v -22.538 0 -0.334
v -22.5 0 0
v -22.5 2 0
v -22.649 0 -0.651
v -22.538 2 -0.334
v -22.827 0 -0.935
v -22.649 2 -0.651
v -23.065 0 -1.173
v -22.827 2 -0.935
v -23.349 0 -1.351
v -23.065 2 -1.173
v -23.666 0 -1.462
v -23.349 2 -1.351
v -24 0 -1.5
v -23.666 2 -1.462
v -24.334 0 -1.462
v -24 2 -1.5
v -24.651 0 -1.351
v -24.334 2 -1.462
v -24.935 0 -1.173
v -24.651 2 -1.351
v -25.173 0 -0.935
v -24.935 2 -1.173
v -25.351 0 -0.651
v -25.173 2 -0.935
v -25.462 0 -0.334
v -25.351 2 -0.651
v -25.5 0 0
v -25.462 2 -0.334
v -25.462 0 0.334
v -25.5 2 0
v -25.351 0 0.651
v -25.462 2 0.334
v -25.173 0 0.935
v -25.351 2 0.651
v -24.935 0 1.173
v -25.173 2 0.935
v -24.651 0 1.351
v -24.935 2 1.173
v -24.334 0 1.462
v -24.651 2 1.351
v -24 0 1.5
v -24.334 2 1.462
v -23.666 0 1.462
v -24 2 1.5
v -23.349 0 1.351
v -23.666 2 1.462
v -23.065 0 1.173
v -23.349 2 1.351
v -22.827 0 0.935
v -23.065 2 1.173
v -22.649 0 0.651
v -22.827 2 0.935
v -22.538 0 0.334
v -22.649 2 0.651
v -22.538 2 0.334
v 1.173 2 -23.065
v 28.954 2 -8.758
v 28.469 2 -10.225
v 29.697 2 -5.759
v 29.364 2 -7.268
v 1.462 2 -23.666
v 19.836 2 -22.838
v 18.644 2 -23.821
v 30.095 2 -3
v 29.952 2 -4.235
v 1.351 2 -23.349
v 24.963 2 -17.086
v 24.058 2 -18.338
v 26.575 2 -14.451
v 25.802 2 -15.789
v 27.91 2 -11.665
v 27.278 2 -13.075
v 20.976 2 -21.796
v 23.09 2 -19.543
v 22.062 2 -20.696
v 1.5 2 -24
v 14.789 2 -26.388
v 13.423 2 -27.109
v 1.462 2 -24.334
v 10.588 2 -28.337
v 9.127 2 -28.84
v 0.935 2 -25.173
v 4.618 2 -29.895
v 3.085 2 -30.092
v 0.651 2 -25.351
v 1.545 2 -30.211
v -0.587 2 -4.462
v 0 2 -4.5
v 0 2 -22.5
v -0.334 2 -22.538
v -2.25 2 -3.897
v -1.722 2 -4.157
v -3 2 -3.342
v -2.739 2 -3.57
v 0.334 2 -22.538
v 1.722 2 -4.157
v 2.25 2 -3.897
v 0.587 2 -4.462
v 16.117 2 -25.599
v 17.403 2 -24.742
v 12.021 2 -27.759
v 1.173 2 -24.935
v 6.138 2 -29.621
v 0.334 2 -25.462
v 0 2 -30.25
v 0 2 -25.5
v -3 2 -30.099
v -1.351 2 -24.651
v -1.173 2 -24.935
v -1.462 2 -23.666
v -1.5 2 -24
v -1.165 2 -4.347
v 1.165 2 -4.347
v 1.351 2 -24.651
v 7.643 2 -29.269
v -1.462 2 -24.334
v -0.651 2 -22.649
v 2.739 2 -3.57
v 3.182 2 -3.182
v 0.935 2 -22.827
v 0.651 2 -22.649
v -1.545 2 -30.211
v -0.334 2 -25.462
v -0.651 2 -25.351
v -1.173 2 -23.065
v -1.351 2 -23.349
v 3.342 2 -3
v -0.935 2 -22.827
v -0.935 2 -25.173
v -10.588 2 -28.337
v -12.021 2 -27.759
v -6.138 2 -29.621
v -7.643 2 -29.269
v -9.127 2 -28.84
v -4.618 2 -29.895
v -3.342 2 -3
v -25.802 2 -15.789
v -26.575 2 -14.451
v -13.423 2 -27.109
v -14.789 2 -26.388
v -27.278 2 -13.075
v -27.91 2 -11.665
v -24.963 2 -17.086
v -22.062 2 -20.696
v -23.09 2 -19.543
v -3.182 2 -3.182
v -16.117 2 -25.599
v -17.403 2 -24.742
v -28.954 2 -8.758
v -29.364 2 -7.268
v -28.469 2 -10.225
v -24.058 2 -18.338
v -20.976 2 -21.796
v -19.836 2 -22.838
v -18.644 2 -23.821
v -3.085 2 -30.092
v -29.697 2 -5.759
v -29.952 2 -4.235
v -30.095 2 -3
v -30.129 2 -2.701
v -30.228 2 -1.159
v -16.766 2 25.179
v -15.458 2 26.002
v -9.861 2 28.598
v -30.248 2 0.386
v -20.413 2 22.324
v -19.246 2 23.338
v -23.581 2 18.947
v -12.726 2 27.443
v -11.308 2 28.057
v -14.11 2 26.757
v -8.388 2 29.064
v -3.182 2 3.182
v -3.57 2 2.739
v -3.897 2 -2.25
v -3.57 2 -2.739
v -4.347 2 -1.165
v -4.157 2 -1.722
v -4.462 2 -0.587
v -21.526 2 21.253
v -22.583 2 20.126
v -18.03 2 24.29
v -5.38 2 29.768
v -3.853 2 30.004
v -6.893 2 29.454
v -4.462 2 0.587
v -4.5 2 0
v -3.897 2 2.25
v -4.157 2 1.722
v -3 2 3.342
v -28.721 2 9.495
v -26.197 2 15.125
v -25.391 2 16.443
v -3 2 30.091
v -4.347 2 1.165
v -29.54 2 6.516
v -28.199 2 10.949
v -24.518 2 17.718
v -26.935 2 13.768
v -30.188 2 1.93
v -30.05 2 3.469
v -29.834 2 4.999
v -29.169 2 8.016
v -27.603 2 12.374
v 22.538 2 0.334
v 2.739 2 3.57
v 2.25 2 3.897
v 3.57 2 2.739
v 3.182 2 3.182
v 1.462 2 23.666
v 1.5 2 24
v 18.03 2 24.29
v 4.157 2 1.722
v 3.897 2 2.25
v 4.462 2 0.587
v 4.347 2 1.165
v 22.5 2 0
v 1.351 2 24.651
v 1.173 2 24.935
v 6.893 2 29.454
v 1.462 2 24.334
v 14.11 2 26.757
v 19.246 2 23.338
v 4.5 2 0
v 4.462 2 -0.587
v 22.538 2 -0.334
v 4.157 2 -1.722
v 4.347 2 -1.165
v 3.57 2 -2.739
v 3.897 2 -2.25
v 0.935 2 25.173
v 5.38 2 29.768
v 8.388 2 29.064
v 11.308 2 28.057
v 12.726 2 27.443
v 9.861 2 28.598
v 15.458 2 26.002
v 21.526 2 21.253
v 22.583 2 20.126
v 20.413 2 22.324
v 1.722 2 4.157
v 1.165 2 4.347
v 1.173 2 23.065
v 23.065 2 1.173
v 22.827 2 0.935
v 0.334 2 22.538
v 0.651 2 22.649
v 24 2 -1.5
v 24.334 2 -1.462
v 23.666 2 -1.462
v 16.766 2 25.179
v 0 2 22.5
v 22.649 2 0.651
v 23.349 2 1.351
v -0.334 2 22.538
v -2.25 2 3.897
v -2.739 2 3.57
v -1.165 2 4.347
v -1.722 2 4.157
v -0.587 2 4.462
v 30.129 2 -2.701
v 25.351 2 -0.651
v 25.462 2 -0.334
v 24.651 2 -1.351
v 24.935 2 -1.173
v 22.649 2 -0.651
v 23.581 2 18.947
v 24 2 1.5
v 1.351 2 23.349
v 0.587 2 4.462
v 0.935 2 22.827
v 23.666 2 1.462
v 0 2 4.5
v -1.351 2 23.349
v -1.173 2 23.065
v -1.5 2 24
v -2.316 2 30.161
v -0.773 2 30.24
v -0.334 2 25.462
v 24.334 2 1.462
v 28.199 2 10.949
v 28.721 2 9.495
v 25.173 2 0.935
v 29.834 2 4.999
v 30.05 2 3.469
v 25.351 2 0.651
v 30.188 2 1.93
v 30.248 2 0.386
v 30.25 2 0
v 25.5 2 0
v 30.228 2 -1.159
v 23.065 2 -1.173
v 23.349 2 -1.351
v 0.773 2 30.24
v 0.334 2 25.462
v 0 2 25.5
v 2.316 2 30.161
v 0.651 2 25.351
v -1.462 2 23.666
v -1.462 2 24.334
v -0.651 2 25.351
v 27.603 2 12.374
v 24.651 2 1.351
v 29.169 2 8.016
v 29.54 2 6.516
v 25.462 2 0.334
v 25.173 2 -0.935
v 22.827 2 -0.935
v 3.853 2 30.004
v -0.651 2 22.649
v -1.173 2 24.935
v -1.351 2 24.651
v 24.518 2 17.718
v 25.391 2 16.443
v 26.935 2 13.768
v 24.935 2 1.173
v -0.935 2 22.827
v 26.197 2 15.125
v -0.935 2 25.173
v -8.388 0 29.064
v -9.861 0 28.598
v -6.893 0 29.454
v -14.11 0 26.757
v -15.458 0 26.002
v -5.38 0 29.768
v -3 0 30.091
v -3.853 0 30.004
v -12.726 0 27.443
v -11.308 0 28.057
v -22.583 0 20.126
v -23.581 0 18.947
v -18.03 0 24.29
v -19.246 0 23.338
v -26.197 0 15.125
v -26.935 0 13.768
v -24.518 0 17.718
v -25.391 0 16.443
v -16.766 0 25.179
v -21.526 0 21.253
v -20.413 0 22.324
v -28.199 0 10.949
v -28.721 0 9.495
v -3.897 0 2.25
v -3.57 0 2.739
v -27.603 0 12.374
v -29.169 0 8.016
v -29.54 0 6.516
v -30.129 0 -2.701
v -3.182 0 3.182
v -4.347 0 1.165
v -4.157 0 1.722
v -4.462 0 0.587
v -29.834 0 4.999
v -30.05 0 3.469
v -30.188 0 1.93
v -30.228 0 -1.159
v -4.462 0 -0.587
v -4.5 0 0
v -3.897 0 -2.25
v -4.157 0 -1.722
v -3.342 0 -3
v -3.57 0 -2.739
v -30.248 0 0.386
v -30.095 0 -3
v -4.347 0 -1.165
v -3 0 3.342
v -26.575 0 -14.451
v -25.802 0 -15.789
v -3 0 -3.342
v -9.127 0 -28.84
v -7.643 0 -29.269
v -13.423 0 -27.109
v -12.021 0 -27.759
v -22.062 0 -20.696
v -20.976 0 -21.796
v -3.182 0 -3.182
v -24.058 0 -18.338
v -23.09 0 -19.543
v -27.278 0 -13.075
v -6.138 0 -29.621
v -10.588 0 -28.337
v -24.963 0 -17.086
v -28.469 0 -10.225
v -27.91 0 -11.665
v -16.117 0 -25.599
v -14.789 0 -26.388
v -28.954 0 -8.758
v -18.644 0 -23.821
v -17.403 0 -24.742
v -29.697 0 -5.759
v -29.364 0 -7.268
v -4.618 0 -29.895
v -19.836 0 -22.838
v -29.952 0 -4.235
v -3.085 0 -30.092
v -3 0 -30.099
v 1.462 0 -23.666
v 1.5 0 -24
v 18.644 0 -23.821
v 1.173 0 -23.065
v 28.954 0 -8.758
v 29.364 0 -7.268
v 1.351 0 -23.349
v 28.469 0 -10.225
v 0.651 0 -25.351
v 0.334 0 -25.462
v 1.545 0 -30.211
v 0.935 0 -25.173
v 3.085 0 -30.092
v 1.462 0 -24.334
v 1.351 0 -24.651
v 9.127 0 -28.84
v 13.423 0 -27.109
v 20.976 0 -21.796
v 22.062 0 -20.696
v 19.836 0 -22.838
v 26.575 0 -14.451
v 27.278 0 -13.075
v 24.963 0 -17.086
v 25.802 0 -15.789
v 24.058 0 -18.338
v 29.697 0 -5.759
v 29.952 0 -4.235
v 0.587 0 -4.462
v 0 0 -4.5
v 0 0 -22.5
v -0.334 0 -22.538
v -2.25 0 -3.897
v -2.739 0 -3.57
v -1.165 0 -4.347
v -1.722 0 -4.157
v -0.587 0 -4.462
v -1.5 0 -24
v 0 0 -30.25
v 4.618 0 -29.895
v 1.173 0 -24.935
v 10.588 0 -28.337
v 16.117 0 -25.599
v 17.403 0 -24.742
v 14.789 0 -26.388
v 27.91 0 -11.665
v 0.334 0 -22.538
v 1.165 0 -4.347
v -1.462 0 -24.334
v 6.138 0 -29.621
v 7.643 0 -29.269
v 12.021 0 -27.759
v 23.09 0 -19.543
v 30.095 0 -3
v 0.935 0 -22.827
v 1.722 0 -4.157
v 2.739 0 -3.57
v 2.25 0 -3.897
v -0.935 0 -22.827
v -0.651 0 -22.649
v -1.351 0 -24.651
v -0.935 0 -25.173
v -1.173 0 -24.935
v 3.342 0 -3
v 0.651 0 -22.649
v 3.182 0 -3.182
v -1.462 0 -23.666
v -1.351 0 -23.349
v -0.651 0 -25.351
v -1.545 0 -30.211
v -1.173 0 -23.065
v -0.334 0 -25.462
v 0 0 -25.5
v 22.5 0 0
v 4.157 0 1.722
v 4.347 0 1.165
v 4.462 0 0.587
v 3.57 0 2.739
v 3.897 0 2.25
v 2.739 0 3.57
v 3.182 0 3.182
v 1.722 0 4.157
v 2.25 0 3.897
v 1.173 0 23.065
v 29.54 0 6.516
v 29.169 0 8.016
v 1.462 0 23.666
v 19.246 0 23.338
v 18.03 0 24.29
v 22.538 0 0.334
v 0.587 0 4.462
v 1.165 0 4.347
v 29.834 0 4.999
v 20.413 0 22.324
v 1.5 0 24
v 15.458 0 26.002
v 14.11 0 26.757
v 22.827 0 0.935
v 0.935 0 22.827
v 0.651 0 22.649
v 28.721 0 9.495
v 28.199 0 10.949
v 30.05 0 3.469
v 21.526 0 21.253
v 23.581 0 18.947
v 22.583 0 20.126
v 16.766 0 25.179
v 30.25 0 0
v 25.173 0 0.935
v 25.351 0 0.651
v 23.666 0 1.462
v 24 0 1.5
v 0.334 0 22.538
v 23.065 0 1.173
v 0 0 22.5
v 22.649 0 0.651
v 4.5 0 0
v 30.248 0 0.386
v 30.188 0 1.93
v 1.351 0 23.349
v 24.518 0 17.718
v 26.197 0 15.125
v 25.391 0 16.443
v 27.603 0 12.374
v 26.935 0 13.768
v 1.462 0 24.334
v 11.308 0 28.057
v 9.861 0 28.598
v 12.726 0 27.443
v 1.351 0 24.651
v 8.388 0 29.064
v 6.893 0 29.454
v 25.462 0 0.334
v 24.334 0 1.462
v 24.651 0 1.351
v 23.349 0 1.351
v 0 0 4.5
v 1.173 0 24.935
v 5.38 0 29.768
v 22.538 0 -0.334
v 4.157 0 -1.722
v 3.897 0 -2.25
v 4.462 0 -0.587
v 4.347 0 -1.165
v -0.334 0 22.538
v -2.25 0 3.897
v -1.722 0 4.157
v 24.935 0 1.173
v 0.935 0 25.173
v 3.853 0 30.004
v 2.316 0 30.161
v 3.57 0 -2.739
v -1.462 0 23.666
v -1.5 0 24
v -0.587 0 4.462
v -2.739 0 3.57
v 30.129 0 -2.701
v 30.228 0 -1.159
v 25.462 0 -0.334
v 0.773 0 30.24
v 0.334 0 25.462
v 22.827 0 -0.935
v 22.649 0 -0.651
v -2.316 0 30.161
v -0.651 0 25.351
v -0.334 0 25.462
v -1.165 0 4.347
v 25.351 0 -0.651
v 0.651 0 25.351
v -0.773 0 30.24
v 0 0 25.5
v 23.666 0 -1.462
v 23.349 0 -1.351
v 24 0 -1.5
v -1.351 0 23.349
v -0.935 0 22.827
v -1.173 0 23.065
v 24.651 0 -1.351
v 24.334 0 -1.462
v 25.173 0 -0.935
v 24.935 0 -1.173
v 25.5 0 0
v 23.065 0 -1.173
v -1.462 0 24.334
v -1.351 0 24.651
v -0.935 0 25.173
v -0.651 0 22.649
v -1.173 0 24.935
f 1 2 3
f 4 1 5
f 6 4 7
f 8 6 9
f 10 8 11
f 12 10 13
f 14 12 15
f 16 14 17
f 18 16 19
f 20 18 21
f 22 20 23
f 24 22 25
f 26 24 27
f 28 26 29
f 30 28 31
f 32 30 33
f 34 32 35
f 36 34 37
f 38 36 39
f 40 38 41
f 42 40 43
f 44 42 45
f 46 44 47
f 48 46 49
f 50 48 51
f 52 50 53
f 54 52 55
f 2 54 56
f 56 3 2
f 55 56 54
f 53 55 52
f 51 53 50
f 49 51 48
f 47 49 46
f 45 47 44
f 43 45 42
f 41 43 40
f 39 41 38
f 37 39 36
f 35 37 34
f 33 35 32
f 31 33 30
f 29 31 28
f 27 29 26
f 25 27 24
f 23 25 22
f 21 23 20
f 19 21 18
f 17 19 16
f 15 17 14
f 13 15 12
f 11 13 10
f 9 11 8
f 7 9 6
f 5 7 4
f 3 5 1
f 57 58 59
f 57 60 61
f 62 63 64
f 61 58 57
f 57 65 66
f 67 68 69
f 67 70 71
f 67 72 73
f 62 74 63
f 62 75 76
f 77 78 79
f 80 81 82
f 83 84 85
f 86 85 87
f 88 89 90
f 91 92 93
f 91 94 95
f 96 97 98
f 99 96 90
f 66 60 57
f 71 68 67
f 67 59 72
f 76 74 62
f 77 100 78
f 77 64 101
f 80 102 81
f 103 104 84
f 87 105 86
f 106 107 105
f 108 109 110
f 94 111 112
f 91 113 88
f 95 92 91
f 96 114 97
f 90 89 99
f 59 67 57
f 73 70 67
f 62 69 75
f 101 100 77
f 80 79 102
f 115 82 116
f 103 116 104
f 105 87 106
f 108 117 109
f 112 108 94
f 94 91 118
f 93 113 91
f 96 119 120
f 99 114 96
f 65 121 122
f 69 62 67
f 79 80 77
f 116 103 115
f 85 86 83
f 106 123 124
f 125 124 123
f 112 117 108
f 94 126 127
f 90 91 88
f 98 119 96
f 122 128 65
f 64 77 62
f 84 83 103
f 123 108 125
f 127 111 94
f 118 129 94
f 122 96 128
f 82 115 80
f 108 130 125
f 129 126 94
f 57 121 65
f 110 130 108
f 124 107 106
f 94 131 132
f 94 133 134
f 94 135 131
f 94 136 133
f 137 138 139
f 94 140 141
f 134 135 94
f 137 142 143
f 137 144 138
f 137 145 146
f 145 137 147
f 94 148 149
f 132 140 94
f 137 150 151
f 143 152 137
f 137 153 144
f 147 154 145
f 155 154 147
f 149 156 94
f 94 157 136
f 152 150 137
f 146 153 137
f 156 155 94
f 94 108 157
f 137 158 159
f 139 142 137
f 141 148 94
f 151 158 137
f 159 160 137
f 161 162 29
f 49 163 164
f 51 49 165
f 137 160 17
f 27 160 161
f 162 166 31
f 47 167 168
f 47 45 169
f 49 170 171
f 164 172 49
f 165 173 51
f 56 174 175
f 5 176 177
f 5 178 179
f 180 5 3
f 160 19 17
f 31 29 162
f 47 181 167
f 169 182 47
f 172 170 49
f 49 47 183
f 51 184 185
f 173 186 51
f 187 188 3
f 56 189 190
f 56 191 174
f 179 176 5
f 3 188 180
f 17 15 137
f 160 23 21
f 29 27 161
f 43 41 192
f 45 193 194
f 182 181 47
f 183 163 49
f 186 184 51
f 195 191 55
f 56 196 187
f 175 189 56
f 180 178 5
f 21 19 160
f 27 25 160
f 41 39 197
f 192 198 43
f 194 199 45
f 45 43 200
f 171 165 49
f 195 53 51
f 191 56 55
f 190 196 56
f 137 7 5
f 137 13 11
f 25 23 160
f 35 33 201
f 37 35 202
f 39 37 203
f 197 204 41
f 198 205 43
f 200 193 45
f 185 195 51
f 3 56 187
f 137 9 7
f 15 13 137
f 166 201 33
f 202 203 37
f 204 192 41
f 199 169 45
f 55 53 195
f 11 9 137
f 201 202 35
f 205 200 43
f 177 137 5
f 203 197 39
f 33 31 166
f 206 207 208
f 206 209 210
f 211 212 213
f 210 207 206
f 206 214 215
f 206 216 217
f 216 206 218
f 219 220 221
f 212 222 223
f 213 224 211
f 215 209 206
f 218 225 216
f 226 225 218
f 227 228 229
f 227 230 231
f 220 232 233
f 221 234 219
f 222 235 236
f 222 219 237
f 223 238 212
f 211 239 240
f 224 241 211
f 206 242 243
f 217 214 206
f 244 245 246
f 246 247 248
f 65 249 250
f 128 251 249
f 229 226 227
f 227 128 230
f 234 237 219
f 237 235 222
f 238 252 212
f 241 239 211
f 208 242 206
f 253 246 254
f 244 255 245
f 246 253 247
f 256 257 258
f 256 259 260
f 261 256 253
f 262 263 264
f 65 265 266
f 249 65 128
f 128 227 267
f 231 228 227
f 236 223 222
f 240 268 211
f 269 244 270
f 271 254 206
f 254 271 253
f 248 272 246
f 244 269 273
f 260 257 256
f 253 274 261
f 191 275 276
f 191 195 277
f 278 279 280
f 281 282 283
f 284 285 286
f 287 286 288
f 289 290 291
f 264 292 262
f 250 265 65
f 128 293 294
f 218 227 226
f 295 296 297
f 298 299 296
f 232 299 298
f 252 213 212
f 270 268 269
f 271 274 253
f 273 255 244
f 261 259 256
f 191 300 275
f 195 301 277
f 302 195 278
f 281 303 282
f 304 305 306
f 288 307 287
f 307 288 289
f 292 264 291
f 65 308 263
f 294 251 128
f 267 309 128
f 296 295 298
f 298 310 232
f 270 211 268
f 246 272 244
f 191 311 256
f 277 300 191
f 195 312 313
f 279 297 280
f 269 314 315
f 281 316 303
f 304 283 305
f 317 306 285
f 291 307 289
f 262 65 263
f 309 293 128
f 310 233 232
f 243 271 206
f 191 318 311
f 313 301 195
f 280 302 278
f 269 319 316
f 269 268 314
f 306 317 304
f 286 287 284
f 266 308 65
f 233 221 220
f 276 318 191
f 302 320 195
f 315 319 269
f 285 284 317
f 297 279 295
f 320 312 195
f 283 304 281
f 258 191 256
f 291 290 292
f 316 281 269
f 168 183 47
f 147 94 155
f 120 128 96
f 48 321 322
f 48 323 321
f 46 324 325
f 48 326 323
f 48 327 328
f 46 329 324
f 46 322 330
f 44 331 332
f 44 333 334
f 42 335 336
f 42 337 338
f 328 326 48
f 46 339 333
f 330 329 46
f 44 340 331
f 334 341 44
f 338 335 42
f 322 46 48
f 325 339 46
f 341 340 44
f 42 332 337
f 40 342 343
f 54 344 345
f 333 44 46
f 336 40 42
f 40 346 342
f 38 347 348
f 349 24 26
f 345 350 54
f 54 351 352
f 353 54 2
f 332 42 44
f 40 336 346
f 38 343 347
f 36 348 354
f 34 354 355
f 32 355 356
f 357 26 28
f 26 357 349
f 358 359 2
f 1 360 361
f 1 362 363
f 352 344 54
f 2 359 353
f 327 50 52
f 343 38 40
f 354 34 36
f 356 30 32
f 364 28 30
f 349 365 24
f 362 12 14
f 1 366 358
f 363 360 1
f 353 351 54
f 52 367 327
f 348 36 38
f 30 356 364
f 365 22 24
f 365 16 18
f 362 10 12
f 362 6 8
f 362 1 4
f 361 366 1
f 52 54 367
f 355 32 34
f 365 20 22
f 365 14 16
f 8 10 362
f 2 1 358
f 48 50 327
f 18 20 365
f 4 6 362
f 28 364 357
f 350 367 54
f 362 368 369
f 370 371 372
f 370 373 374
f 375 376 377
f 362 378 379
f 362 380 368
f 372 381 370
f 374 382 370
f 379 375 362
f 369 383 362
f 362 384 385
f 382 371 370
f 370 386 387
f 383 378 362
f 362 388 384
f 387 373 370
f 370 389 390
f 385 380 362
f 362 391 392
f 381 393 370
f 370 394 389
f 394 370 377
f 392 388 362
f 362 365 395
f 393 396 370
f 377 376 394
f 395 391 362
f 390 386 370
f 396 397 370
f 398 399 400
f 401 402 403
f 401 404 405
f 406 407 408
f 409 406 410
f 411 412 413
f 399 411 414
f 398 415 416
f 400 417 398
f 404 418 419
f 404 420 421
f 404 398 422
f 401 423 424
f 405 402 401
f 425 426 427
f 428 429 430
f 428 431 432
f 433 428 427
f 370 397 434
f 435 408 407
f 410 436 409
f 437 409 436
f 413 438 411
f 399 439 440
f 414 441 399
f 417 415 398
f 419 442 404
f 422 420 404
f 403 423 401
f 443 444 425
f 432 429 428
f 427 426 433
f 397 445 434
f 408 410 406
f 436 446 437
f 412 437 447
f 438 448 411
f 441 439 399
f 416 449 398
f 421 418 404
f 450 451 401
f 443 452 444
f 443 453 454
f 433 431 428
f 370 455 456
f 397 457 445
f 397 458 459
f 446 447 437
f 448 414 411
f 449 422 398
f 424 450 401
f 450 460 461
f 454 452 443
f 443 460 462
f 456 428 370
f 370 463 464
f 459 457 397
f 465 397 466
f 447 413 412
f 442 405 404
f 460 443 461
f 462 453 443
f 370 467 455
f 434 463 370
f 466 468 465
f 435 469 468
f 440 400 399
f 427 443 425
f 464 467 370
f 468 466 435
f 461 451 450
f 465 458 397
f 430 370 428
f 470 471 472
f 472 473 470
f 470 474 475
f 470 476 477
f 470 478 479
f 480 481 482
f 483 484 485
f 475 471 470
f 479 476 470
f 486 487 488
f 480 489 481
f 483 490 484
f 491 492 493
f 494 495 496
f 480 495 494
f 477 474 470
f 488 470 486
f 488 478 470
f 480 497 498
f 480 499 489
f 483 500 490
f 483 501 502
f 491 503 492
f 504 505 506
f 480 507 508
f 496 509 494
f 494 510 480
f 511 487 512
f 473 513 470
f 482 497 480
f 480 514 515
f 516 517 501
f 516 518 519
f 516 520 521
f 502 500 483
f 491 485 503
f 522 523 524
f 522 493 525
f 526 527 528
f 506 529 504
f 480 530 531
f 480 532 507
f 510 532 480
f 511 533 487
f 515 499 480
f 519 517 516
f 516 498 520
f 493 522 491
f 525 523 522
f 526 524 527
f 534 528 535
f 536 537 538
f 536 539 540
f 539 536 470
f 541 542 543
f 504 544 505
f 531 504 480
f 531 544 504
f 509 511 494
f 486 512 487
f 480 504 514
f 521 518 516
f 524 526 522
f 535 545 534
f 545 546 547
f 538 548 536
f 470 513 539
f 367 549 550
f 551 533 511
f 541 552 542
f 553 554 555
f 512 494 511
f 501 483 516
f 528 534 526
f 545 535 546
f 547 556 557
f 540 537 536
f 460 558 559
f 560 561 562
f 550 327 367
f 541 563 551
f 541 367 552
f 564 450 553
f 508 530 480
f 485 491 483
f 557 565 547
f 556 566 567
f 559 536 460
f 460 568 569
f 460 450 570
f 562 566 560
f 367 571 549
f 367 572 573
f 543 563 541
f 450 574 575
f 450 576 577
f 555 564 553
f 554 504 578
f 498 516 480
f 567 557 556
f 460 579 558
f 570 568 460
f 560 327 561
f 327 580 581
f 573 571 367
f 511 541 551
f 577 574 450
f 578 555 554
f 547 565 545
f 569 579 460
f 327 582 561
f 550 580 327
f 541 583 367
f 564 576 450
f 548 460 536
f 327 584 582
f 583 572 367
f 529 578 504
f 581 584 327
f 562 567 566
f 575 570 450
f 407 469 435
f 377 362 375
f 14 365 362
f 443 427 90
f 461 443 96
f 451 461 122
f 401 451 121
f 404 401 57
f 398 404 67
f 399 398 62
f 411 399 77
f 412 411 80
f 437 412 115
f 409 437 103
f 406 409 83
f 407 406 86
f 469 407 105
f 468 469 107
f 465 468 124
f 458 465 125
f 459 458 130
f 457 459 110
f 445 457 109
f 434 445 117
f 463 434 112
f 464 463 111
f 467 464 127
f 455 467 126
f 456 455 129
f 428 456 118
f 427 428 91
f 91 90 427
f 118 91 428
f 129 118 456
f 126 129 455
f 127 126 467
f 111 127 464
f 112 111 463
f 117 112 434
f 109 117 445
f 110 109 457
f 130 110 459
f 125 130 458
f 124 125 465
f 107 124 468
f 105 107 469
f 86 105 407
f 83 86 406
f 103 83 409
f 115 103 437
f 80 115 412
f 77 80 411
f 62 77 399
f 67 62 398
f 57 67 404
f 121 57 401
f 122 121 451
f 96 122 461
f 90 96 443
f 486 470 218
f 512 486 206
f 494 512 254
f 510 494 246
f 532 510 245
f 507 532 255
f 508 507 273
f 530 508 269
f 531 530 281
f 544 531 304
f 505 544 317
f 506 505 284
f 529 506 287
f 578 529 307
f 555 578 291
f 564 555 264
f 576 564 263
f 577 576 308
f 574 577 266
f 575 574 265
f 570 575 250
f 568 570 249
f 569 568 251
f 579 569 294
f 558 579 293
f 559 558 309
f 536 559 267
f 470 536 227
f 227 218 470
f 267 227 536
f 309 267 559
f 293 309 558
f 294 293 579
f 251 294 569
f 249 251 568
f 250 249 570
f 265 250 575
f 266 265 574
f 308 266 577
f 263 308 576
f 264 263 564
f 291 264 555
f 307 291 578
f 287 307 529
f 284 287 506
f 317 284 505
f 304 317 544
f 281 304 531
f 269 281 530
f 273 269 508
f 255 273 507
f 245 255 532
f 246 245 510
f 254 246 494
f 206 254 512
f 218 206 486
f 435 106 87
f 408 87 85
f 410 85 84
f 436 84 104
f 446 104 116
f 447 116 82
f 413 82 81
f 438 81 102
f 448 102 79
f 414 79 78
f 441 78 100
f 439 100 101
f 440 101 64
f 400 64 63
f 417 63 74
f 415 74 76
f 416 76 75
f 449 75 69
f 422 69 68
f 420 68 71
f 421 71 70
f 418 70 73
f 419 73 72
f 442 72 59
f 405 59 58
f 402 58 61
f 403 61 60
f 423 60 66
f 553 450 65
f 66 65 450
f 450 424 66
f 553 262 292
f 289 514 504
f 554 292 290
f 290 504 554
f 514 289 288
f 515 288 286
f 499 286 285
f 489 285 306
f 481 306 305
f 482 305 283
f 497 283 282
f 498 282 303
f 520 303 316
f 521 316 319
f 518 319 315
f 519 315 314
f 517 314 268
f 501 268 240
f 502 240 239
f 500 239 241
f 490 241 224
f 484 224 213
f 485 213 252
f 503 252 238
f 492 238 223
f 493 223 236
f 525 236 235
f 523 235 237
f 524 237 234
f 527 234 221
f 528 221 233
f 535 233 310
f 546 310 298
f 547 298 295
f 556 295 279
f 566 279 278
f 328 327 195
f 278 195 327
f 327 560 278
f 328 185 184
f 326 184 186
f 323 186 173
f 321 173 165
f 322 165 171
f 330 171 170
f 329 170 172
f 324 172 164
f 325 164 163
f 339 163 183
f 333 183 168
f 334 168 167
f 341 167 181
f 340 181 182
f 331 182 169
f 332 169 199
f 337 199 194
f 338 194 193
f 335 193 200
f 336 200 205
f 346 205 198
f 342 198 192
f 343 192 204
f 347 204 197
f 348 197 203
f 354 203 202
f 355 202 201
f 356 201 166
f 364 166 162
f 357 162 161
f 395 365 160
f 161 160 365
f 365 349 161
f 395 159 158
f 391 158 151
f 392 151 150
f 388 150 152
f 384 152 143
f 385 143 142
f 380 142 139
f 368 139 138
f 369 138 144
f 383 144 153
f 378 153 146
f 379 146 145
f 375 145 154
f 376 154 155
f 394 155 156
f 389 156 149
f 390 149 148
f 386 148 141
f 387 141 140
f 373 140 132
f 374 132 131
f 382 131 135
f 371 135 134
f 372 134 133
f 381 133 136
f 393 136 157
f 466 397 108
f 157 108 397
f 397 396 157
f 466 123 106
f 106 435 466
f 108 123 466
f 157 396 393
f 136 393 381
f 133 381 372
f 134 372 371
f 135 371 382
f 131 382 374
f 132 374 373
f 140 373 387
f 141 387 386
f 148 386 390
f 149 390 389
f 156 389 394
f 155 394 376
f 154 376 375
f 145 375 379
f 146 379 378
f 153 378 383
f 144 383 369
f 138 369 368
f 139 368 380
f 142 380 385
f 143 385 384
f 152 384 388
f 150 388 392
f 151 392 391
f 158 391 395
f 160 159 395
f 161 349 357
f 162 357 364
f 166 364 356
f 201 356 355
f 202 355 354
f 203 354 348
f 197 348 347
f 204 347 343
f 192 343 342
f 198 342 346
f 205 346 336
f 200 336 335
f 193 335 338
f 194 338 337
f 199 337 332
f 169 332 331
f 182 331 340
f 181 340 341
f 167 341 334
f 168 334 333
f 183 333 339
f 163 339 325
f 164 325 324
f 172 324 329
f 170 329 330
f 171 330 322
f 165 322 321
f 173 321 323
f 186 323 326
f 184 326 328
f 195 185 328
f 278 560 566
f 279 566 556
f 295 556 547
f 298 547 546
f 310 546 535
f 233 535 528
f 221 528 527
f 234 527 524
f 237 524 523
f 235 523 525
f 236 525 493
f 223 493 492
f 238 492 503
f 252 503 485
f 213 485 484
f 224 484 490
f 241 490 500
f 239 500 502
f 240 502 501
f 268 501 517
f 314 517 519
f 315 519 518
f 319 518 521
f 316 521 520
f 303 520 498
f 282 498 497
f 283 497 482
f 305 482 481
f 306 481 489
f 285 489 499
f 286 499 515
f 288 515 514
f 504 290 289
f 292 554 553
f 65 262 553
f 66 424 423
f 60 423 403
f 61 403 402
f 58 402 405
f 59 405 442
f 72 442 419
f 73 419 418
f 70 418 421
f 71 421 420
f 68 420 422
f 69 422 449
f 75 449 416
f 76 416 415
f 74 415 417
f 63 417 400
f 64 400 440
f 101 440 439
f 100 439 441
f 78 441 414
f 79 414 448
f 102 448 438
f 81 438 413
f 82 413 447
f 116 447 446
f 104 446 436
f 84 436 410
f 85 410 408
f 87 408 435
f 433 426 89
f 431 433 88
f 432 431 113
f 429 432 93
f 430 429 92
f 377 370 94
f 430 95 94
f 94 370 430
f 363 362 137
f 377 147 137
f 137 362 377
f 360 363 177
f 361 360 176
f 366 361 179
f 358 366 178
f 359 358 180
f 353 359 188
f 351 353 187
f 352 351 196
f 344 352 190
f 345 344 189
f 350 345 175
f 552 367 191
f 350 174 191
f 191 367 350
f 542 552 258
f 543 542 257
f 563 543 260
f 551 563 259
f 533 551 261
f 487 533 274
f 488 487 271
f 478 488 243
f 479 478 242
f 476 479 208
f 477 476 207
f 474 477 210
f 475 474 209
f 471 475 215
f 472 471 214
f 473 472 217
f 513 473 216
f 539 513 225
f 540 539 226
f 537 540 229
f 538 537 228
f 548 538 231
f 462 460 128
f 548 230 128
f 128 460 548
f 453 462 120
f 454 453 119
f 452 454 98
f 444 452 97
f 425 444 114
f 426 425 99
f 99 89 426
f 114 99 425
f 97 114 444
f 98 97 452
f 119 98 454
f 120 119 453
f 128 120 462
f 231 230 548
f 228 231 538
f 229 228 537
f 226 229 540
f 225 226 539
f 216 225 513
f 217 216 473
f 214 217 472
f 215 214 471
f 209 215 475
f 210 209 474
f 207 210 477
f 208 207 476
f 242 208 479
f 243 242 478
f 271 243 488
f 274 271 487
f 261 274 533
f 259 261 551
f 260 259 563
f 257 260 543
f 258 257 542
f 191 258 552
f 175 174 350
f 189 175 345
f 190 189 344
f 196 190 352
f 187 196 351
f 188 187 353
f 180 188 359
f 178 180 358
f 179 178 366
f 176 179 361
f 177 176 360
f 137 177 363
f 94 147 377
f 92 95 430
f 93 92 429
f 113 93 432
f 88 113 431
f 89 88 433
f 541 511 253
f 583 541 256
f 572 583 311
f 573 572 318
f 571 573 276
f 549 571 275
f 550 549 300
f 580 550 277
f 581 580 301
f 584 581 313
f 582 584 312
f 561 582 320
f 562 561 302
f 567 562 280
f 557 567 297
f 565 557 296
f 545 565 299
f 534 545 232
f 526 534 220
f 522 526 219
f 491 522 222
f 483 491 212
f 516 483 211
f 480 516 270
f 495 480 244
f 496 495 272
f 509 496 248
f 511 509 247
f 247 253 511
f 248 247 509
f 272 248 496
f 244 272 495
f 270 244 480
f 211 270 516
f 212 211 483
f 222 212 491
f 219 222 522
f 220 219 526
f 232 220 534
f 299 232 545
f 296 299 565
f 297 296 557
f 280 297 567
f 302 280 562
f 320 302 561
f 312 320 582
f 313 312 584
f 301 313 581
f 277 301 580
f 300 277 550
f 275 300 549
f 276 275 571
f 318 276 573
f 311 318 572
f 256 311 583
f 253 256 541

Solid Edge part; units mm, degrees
sketch "Sketch1" plane through (0, 0, 0) normal (0, -1, 0) x (1, 0, 0)
  circle A0 centre (0, 0) radius 30.25
extrude "Protrusion1" add sketch "Sketch1" against normal blind 2
sketch "Sketch2" plane through (0, 0, 0) normal (0, -1, 0) x (1, 0, 0)
  circle A0 centre (0, 0) radius 4.5
extrude "Cutout1" cut sketch "Sketch2" against normal through all
sketch "Sketch3" plane through (0, 0, 0) normal (0, -1, 0) x (1, 0, 0)
  circle A0 centre (0, 24) radius 1.5
extrude "Cutout2" cut sketch "Sketch3" against normal through all
pattern_circular "Pattern1" count 4 over 360 about axis through (0, 0, 0) along (0, 1, 0) of "Cutout2"
